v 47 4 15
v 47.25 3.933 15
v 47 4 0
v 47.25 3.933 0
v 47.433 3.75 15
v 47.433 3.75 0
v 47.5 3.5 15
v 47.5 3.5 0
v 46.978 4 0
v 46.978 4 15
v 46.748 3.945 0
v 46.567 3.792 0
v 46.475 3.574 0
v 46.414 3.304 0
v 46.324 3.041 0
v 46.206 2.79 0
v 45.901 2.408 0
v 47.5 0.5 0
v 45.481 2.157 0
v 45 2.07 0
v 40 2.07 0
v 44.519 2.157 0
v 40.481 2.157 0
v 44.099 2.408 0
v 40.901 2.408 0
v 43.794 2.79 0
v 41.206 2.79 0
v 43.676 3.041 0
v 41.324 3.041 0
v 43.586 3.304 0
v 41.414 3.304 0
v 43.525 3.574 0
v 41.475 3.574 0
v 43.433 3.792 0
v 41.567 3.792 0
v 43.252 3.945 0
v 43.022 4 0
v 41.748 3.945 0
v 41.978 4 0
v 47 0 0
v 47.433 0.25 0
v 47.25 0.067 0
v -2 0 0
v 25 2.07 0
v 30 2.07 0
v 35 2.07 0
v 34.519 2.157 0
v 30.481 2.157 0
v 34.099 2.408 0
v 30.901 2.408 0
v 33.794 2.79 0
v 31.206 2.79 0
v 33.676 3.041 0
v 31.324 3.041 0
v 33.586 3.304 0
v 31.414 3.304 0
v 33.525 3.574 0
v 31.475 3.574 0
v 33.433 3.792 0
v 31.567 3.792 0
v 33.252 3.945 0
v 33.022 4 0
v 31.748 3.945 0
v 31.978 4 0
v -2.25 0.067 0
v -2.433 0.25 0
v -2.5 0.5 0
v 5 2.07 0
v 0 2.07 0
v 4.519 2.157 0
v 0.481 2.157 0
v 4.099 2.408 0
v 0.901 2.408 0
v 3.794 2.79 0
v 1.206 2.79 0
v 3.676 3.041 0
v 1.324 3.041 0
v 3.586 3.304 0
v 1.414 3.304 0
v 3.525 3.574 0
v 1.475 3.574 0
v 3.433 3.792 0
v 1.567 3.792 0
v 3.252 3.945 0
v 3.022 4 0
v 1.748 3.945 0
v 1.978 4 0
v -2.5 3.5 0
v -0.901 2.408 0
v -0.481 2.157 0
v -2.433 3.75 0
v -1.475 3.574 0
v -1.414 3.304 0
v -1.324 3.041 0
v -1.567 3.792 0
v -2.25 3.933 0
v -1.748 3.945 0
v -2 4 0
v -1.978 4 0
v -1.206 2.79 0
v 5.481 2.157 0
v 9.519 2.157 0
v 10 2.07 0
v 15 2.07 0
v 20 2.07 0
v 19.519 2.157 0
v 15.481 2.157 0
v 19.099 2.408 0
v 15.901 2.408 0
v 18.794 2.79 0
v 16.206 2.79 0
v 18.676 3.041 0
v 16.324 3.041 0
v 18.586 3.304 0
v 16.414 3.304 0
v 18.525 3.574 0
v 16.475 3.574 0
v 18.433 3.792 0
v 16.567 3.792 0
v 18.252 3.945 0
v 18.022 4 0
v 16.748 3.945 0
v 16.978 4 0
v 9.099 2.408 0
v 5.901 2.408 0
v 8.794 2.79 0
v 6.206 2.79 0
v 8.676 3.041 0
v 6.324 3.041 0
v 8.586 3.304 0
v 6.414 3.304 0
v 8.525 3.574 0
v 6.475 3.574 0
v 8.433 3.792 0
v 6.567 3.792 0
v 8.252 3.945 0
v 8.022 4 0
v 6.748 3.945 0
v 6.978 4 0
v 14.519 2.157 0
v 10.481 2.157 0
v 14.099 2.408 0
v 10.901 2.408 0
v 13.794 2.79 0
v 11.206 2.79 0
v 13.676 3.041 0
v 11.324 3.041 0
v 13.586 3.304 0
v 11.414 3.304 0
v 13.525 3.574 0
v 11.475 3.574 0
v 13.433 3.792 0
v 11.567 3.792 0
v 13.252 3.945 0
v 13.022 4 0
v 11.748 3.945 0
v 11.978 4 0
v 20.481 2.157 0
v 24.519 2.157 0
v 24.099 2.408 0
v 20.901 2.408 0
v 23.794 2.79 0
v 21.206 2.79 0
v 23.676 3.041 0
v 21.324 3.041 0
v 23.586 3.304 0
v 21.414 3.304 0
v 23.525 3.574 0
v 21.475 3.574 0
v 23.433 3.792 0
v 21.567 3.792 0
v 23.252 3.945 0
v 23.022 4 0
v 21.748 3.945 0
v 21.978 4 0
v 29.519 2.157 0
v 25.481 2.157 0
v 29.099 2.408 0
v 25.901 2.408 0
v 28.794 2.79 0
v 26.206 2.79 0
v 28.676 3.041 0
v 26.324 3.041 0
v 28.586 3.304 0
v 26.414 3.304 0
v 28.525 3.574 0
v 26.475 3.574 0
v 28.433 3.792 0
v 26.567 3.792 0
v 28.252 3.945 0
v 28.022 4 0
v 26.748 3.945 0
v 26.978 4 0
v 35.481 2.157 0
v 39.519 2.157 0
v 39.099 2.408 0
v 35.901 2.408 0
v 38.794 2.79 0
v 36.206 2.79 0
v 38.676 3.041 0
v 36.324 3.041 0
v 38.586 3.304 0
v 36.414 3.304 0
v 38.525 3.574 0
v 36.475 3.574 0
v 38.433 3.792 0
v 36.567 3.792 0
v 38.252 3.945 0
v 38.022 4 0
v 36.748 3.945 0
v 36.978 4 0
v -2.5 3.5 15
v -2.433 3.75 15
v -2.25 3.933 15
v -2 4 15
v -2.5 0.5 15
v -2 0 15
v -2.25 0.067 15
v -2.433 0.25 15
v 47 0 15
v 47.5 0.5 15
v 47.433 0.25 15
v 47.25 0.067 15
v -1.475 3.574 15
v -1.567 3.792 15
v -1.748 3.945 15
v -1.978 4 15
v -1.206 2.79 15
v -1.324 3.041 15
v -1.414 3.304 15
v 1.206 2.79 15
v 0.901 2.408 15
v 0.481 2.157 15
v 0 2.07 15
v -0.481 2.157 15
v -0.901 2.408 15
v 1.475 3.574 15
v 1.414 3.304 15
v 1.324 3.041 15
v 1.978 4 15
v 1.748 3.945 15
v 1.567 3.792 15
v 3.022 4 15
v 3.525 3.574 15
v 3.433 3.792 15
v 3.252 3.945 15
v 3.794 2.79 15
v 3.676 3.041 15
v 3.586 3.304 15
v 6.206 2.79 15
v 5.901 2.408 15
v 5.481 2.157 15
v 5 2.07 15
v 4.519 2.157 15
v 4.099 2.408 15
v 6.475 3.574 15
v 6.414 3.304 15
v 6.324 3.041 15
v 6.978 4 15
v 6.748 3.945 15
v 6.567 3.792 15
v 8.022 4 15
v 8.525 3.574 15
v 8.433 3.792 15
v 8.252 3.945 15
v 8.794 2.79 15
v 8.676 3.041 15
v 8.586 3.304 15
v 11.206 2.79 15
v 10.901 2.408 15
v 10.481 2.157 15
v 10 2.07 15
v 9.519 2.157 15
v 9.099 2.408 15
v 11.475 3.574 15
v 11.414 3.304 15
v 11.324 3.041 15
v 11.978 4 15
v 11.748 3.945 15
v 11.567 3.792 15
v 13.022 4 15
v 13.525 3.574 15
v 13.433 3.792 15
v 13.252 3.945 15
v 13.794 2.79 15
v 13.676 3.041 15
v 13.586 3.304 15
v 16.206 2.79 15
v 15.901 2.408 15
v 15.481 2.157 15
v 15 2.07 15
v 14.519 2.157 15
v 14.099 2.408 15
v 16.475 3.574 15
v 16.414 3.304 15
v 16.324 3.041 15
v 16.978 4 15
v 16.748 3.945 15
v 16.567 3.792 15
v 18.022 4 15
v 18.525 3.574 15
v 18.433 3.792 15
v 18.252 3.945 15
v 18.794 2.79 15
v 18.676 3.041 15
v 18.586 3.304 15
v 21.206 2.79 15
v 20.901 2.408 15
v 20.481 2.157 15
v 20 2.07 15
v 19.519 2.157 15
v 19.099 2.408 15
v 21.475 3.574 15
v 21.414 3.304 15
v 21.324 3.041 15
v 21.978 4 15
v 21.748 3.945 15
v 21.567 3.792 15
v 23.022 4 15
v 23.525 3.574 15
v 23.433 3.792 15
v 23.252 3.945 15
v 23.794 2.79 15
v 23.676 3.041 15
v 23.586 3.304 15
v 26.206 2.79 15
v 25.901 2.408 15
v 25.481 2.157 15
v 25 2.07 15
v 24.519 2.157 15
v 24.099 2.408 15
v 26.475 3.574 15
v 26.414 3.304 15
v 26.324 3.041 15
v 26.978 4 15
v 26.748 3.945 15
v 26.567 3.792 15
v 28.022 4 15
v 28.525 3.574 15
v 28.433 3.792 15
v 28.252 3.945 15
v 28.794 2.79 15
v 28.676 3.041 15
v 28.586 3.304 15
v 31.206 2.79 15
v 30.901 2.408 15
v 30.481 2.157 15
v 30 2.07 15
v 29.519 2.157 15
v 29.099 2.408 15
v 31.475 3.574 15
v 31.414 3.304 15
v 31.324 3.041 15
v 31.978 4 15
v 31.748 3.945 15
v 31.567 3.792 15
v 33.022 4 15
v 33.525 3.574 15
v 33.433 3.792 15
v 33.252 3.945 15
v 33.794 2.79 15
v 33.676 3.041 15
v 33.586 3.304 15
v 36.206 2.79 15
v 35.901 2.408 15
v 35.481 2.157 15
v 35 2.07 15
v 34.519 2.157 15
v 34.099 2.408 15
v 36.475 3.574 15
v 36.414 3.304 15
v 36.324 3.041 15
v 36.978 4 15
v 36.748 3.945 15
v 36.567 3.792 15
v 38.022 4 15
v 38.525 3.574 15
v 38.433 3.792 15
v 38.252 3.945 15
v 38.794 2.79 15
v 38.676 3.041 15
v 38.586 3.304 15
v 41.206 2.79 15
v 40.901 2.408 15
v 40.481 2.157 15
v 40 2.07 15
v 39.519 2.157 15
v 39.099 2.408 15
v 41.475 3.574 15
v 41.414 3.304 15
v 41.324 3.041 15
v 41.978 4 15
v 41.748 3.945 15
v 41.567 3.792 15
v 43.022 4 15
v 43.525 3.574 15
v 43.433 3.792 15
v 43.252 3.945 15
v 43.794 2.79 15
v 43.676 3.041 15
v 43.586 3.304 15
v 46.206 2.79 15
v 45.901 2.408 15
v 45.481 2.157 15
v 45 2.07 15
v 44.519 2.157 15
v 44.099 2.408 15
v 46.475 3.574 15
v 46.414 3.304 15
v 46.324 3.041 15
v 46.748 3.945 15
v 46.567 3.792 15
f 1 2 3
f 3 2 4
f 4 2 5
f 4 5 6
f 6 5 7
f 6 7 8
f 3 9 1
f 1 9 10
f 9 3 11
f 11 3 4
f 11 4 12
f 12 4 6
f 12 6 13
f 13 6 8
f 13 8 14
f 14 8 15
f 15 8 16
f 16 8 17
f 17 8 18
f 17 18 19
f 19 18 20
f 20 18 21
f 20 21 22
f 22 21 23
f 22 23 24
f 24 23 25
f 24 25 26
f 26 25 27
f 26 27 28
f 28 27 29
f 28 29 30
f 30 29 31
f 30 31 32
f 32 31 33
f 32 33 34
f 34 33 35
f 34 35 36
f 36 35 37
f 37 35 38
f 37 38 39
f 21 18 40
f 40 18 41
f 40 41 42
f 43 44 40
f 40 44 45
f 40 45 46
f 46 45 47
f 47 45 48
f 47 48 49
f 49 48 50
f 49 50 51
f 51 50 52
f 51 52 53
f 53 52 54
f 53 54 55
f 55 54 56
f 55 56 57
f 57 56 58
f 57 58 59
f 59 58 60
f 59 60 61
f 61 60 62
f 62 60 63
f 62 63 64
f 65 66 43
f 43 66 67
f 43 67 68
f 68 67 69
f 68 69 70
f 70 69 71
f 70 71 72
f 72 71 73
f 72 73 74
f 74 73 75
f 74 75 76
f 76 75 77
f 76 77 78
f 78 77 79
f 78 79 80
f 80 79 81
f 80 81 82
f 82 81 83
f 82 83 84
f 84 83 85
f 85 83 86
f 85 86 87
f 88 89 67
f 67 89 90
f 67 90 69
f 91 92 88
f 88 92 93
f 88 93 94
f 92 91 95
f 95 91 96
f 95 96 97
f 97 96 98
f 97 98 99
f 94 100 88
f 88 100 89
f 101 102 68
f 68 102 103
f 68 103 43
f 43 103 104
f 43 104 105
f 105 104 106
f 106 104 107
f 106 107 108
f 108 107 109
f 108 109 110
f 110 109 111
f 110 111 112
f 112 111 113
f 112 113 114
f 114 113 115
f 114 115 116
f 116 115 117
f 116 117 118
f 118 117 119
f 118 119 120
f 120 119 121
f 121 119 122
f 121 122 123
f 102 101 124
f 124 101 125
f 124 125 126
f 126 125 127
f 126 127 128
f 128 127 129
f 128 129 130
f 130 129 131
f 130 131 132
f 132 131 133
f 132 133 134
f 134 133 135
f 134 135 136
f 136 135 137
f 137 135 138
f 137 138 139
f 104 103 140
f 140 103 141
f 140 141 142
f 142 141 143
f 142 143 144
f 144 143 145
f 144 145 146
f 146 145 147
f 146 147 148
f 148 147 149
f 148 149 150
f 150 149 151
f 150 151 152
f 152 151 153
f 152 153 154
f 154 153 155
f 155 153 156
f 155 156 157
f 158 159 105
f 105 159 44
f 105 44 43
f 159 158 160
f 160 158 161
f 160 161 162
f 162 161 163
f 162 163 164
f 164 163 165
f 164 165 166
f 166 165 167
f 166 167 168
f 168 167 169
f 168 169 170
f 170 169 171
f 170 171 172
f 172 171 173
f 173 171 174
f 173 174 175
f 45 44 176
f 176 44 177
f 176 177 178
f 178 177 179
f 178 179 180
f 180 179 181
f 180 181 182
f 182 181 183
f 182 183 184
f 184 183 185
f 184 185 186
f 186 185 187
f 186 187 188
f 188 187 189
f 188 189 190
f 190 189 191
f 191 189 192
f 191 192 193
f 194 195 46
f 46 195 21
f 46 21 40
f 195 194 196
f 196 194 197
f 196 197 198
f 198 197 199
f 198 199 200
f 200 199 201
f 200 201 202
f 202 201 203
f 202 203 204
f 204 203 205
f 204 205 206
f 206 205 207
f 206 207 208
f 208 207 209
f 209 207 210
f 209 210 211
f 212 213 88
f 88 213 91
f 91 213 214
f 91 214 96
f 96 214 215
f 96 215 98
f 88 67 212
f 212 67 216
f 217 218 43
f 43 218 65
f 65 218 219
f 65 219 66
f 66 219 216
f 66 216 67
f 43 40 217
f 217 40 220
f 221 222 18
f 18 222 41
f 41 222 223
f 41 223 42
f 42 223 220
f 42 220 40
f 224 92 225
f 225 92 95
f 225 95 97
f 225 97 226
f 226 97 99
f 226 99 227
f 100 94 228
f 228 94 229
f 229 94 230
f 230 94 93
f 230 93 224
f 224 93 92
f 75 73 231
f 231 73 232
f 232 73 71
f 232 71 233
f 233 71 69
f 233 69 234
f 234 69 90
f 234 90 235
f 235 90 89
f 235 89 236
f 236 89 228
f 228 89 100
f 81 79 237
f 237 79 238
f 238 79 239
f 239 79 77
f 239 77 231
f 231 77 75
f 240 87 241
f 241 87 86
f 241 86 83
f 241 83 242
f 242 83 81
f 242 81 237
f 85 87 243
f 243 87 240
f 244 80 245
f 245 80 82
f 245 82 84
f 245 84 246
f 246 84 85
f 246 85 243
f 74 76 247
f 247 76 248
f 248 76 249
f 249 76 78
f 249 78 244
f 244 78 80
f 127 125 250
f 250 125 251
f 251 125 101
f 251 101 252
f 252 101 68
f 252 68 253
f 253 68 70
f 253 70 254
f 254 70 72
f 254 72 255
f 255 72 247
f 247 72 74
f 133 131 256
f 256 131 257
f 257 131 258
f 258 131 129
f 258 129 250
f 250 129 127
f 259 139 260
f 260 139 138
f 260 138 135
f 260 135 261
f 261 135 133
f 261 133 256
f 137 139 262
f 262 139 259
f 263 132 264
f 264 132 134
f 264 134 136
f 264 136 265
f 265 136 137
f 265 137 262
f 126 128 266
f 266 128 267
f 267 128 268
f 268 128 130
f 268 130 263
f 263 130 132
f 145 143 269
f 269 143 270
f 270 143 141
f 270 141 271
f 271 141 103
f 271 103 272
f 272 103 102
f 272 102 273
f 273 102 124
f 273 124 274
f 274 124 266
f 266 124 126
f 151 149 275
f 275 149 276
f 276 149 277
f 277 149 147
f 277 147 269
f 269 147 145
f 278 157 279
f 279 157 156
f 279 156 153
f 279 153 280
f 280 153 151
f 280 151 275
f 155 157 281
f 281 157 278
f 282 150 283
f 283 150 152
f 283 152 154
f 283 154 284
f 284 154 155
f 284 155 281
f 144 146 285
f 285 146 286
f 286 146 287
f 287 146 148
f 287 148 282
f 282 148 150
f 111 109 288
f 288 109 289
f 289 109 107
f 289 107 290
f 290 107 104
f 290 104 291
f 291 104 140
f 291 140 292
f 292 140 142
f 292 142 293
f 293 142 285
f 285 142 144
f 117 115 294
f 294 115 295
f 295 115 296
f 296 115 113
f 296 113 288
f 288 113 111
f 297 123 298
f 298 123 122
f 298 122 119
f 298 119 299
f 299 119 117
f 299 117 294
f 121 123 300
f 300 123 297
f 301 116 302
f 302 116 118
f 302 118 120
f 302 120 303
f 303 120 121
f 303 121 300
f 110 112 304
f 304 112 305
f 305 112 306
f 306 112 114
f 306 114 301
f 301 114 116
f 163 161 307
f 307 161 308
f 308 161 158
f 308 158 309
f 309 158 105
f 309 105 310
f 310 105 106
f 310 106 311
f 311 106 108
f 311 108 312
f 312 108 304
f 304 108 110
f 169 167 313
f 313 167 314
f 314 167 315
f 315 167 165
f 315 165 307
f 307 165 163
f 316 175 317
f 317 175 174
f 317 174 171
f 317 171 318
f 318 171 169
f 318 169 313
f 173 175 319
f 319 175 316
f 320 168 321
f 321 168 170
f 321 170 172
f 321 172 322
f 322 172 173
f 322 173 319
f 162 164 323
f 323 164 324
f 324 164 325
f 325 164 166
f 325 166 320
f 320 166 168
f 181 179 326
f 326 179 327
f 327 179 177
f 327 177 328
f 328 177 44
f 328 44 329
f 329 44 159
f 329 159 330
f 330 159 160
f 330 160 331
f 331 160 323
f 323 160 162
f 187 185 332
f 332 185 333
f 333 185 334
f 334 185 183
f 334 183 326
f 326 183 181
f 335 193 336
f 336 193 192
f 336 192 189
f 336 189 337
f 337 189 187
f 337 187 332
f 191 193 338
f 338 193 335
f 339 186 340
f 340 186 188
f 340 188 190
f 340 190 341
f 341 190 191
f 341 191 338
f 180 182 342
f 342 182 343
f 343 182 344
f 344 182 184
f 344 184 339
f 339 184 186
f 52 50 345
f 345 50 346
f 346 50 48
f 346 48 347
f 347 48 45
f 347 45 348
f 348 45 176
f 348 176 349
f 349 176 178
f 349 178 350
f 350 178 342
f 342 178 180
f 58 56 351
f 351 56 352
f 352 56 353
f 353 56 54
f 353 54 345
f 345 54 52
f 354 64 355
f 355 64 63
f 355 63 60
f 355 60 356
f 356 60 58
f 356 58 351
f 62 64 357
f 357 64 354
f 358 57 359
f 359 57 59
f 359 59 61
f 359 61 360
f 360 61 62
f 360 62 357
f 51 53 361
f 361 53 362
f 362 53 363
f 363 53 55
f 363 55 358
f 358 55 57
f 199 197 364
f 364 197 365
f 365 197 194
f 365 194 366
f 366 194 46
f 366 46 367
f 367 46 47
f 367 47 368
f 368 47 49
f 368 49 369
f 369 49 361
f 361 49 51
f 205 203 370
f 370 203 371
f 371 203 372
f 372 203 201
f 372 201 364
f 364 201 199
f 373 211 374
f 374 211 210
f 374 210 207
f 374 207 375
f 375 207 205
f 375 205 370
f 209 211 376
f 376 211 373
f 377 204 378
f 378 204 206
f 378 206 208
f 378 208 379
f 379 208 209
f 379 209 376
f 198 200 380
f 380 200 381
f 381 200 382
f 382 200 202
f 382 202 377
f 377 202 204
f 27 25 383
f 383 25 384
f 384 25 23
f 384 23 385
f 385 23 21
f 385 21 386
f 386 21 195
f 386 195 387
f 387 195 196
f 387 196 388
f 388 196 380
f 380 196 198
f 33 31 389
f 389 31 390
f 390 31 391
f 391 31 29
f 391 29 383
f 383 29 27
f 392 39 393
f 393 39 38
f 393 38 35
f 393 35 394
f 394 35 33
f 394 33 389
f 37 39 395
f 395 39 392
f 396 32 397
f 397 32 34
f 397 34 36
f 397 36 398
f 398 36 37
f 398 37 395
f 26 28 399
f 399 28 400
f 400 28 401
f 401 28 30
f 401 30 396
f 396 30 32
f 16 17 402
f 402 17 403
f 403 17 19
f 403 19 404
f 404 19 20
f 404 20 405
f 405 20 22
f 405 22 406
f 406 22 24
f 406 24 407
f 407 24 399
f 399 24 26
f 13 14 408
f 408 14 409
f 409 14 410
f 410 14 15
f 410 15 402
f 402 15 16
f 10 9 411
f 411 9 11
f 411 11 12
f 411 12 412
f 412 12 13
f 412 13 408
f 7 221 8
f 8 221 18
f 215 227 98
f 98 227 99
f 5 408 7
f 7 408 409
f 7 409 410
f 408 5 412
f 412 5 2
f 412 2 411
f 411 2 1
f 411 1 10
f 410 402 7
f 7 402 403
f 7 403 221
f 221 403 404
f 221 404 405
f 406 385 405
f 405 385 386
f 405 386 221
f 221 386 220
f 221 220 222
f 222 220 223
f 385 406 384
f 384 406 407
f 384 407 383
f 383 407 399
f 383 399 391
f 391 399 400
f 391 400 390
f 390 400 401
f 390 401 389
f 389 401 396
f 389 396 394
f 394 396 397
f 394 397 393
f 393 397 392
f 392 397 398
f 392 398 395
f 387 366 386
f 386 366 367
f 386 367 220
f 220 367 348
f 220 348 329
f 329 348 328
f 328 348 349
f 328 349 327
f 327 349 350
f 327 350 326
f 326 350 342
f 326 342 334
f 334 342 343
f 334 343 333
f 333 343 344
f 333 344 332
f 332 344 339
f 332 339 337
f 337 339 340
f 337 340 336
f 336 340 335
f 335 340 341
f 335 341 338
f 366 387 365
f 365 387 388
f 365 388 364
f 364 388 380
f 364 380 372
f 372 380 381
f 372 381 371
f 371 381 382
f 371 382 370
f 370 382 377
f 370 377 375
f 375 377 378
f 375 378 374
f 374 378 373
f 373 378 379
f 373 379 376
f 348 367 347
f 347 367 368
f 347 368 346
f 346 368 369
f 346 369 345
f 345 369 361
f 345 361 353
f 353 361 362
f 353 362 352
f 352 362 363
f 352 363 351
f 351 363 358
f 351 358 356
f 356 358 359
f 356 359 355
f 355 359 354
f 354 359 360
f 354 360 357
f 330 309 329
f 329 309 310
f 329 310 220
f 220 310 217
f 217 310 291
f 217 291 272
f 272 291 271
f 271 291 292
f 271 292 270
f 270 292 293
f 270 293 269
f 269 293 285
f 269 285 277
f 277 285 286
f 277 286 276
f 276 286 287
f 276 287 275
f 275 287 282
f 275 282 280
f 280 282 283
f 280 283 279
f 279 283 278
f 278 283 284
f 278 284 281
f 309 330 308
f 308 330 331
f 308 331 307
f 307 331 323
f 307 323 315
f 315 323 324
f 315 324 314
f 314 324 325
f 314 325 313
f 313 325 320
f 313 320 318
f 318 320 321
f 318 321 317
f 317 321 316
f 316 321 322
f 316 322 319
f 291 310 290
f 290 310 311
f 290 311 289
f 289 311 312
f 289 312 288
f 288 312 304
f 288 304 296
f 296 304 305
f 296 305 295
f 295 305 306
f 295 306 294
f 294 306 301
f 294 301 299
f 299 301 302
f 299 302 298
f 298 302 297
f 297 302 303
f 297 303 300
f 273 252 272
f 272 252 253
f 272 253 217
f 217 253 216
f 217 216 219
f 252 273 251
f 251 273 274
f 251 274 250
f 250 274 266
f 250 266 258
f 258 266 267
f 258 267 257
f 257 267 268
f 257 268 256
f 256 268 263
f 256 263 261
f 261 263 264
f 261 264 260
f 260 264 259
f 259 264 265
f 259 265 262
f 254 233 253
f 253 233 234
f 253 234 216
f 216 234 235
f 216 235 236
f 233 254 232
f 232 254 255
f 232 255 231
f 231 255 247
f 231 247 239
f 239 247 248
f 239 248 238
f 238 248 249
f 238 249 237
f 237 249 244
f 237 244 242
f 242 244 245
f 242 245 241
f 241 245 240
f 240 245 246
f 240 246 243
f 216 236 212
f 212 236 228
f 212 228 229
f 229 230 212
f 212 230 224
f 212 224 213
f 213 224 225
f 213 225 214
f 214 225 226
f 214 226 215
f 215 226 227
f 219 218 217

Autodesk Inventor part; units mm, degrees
ref_plane "YZ Plane" through (0, 0, 0) normal (1, 0, 0) x (0, 1, 0)
ref_plane "XZ Plane" through (0, 0, 0) normal (0, 1, 0) x (-1, 0, 0)
ref_plane "XY Plane" through (0, 0, 0) normal (0, 0, 1) x (1, 0, 0)
sketch "スケッチ1" plane through (0, 0, 0) normal (0, 0, 1) x (1, 0, 0)
  line L0 (-2.5, 0) -> (47.5, 0)
  arc A0 (-1.2061, 2.7902) -> (1.2061, 2.7902) centre (0, 3.44) ccw
  arc A1 (-1.4749, 3.5744) -> (-1.2061, 2.7902) centre (1.03, 3.995) ccw
  arc A2 (1.2061, 2.7902) -> (1.4749, 3.5744) centre (-1.03, 3.995) ccw
  arc A3 (-1.4749, 3.5744) -> (-1.9779, 4) centre (-1.9779, 3.49) ccw
  arc A4 (1.9779, 4) -> (1.4749, 3.5744) centre (1.9779, 3.49) ccw
  line L1 (1.9779, 4) -> (2.5, 4)
  line L2 (-1.9779, 4) -> (-2.5, 4)
  line L3 (6.9779, 4) -> (7.5, 4)
  arc A5 (6.9779, 4) -> (6.4749, 3.5744) centre (6.9779, 3.49) ccw
  arc A6 (6.2061, 2.7902) -> (6.4749, 3.5744) centre (3.97, 3.995) ccw
  arc A7 (3.7939, 2.7902) -> (6.2061, 2.7902) centre (5, 3.44) ccw
  arc A8 (3.5251, 3.5744) -> (3.7939, 2.7902) centre (6.03, 3.995) ccw
  arc A9 (3.5251, 3.5744) -> (3.0221, 4) centre (3.0221, 3.49) ccw
  line L4 (3.0221, 4) -> (2.5, 4)
  line L5 (11.9779, 4) -> (12.5, 4)
  arc A10 (11.9779, 4) -> (11.4749, 3.5744) centre (11.9779, 3.49) ccw
  arc A11 (11.2061, 2.7902) -> (11.4749, 3.5744) centre (8.97, 3.995) ccw
  arc A12 (8.7939, 2.7902) -> (11.2061, 2.7902) centre (10, 3.44) ccw
  arc A13 (8.5251, 3.5744) -> (8.7939, 2.7902) centre (11.03, 3.995) ccw
  arc A14 (8.5251, 3.5744) -> (8.0221, 4) centre (8.0221, 3.49) ccw
  line L6 (8.0221, 4) -> (7.5, 4)
  line L7 (16.9779, 4) -> (17.5, 4)
  arc A15 (16.9779, 4) -> (16.4749, 3.5744) centre (16.9779, 3.49) ccw
  arc A16 (16.2061, 2.7902) -> (16.4749, 3.5744) centre (13.97, 3.995) ccw
  arc A17 (13.7939, 2.7902) -> (16.2061, 2.7902) centre (15, 3.44) ccw
  arc A18 (13.5251, 3.5744) -> (13.7939, 2.7902) centre (16.03, 3.995) ccw
  arc A19 (13.5251, 3.5744) -> (13.0221, 4) centre (13.0221, 3.49) ccw
  line L8 (13.0221, 4) -> (12.5, 4)
  line L9 (21.9779, 4) -> (22.5, 4)
  arc A20 (21.9779, 4) -> (21.4749, 3.5744) centre (21.9779, 3.49) ccw
  arc A21 (21.2061, 2.7902) -> (21.4749, 3.5744) centre (18.97, 3.995) ccw
  arc A22 (18.7939, 2.7902) -> (21.2061, 2.7902) centre (20, 3.44) ccw
  arc A23 (18.5251, 3.5744) -> (18.7939, 2.7902) centre (21.03, 3.995) ccw
  arc A24 (18.5251, 3.5744) -> (18.0221, 4) centre (18.0221, 3.49) ccw
  line L10 (18.0221, 4) -> (17.5, 4)
  line L11 (26.9779, 4) -> (27.5, 4)
  arc A25 (26.9779, 4) -> (26.4749, 3.5744) centre (26.9779, 3.49) ccw
  arc A26 (26.2061, 2.7902) -> (26.4749, 3.5744) centre (23.97, 3.995) ccw
  arc A27 (23.7939, 2.7902) -> (26.2061, 2.7902) centre (25, 3.44) ccw
  arc A28 (23.5251, 3.5744) -> (23.7939, 2.7902) centre (26.03, 3.995) ccw
  arc A29 (23.5251, 3.5744) -> (23.0221, 4) centre (23.0221, 3.49) ccw
  line L12 (23.0221, 4) -> (22.5, 4)
  line L13 (31.9779, 4) -> (32.5, 4)
  arc A30 (31.9779, 4) -> (31.4749, 3.5744) centre (31.9779, 3.49) ccw
  arc A31 (31.2061, 2.7902) -> (31.4749, 3.5744) centre (28.97, 3.995) ccw
  arc A32 (28.7939, 2.7902) -> (31.2061, 2.7902) centre (30, 3.44) ccw
  arc A33 (28.5251, 3.5744) -> (28.7939, 2.7902) centre (31.03, 3.995) ccw
  arc A34 (28.5251, 3.5744) -> (28.0221, 4) centre (28.0221, 3.49) ccw
  line L14 (28.0221, 4) -> (27.5, 4)
  line L15 (36.9779, 4) -> (37.5, 4)
  arc A35 (36.9779, 4) -> (36.4749, 3.5744) centre (36.9779, 3.49) ccw
  arc A36 (36.2061, 2.7902) -> (36.4749, 3.5744) centre (33.97, 3.995) ccw
  arc A37 (33.7939, 2.7902) -> (36.2061, 2.7902) centre (35, 3.44) ccw
  arc A38 (33.5251, 3.5744) -> (33.7939, 2.7902) centre (36.03, 3.995) ccw
  arc A39 (33.5251, 3.5744) -> (33.0221, 4) centre (33.0221, 3.49) ccw
  line L16 (33.0221, 4) -> (32.5, 4)
  line L17 (41.9779, 4) -> (42.5, 4)
  arc A40 (41.9779, 4) -> (41.4749, 3.5744) centre (41.9779, 3.49) ccw
  arc A41 (41.2061, 2.7902) -> (41.4749, 3.5744) centre (38.97, 3.995) ccw
  arc A42 (38.7939, 2.7902) -> (41.2061, 2.7902) centre (40, 3.44) ccw
  arc A43 (38.5251, 3.5744) -> (38.7939, 2.7902) centre (41.03, 3.995) ccw
  arc A44 (38.5251, 3.5744) -> (38.0221, 4) centre (38.0221, 3.49) ccw
  line L18 (38.0221, 4) -> (37.5, 4)
  line L19 (46.9779, 4) -> (47.5, 4)
  arc A45 (46.9779, 4) -> (46.4749, 3.5744) centre (46.9779, 3.49) ccw
  arc A46 (46.2061, 2.7902) -> (46.4749, 3.5744) centre (43.97, 3.995) ccw
  arc A47 (43.7939, 2.7902) -> (46.2061, 2.7902) centre (45, 3.44) ccw
  arc A48 (43.5251, 3.5744) -> (43.7939, 2.7902) centre (46.03, 3.995) ccw
  arc A49 (43.5251, 3.5744) -> (43.0221, 4) centre (43.0221, 3.49) ccw
  line L20 (43.0221, 4) -> (42.5, 4)
  line L21 (-2.5, 4) -> (-2.5, 0)
  line L22 (47.5, 4) -> (47.5, 0)
  point P0 (0, 0)
  point P1 (0, 2.07)
  point P2 (5, 2.07)
  point P3 (10, 2.07)
  point P4 (15, 2.07)
  point P5 (20, 2.07)
  point P6 (25, 2.07)
  point P7 (30, 2.07)
  point P8 (35, 2.07)
  point P9 (40, 2.07)
  point P10 (45, 2.07)
  dimension "d0" = 1.37
  dimension "d1" = 2.54
  dimension "d2" = 2.54
  dimension "d3" = 1.03
  dimension "d4" = 1.03
  dimension "d5" = 0.51
  dimension "d6" = 0.51
  dimension "d7" = 1.93
  dimension "d9" = 5
  dimension "d10" = 2.5
  dimension "d11" = 4
  dimension "d14" = 5
extrude "押し出し1" add sketch "スケッチ1" along normal blind 15
fillet "フィレット1" radius 0.5 4 edges at (47.5, 0, 7.5) (-2.5, 0, 7.5) (-2.5, 4, 7.5) (47.5, 4, 7.5)
properties part number "belttunagi"
